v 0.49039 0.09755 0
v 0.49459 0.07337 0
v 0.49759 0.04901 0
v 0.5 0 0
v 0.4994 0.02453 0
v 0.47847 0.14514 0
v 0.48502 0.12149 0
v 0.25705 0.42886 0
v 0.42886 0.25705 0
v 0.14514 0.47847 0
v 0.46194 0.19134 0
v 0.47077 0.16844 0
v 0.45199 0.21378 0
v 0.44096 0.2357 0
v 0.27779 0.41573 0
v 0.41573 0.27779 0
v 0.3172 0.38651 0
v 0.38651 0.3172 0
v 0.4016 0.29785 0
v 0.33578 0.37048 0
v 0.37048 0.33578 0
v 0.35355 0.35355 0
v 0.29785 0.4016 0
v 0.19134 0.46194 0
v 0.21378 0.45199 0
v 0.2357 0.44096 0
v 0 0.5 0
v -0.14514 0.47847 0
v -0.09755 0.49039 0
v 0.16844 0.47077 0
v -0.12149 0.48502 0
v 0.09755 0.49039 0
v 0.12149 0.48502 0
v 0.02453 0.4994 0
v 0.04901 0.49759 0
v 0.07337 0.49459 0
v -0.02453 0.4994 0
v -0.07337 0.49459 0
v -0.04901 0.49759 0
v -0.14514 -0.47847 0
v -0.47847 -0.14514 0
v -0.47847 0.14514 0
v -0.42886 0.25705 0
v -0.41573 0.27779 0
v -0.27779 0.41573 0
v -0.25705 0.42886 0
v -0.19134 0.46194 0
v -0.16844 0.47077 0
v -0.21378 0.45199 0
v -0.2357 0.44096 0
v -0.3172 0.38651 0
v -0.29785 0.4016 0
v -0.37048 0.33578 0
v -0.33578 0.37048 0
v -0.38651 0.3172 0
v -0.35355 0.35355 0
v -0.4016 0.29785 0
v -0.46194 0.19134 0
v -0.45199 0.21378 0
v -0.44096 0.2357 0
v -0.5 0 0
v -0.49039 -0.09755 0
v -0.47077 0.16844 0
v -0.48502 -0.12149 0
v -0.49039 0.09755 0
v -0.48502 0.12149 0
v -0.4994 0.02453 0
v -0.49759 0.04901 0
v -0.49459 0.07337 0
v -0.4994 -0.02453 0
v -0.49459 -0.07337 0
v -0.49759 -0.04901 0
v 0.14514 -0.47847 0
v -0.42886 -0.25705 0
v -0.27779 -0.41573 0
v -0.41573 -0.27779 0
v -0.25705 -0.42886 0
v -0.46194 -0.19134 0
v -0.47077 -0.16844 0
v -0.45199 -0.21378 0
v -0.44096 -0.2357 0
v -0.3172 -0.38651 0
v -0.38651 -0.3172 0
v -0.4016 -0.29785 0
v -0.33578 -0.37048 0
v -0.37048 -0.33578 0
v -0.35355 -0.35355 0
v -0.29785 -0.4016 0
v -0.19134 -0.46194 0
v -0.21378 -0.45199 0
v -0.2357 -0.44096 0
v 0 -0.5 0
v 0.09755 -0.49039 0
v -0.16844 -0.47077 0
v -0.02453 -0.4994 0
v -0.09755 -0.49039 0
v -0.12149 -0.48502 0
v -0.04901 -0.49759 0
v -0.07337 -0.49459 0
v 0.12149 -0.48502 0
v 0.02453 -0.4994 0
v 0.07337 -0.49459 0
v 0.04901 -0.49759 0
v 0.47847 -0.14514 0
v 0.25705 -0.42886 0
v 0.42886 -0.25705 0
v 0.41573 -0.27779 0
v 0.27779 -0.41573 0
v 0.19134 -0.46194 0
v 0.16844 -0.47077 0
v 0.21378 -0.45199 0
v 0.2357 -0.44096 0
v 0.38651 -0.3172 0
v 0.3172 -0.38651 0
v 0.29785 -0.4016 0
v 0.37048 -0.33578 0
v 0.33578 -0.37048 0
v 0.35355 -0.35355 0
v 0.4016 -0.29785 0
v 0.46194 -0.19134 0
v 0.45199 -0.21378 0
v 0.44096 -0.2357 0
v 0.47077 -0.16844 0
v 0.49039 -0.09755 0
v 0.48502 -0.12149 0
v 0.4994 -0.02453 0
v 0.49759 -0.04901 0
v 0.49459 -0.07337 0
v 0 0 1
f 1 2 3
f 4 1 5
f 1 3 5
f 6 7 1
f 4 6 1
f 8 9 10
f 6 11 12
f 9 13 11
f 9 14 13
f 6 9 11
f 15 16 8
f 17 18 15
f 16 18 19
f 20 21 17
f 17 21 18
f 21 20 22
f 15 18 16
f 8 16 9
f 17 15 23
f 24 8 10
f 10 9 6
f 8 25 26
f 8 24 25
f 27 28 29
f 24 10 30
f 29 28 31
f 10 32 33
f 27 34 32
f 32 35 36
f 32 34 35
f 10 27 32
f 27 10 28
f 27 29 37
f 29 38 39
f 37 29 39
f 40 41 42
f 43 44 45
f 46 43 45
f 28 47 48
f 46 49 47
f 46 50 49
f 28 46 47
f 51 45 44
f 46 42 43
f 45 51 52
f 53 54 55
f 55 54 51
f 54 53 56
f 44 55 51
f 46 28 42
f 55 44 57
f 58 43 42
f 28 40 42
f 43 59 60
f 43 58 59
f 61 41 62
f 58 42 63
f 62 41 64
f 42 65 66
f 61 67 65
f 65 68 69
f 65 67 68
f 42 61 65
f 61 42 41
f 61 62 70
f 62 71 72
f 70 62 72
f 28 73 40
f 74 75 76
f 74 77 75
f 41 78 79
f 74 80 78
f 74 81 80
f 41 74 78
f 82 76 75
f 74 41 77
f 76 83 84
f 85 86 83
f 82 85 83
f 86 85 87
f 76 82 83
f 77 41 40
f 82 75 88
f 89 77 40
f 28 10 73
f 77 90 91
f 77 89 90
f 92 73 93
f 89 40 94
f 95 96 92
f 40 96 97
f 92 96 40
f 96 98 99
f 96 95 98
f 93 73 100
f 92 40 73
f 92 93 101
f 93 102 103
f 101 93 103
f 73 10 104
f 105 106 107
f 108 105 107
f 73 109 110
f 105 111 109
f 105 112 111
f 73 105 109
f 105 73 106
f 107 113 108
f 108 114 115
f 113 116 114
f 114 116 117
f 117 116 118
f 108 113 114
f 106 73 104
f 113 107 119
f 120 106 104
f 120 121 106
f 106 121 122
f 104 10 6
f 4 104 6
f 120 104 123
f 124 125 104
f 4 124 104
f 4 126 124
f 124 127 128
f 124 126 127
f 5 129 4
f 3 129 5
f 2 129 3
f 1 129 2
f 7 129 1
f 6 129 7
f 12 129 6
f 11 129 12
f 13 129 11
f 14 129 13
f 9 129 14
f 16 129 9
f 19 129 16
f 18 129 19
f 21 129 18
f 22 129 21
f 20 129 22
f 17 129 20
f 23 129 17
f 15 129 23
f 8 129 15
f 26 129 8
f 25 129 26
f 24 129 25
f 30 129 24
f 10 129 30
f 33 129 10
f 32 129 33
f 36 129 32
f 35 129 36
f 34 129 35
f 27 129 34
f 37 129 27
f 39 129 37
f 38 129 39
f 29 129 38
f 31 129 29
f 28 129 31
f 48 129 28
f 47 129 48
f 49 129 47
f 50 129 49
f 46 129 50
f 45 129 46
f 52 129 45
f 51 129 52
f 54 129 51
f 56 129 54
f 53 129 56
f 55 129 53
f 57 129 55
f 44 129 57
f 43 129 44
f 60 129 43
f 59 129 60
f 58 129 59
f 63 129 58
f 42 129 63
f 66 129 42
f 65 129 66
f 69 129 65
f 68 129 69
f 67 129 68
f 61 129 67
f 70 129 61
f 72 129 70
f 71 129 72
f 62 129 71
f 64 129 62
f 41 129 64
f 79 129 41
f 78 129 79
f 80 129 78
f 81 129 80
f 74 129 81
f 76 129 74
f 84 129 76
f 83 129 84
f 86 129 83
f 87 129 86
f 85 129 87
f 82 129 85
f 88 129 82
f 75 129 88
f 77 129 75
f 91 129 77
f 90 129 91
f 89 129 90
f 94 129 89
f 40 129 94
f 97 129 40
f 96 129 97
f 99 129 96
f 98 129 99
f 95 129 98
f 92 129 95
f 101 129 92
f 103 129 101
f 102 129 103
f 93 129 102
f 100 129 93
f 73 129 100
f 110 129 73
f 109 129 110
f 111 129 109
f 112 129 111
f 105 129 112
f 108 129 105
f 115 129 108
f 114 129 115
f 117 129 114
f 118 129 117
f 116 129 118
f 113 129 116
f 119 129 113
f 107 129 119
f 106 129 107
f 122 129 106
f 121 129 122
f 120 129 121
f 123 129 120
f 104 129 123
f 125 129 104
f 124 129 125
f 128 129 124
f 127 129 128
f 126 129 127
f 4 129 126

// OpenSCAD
// Cone for Stacks of Shapes
// by Slashee the Cow

$fn = $preview ? 1024 : 128;

color("SpringGreen")
linear_extrude(1, scale = 0)
    circle(d=1);
